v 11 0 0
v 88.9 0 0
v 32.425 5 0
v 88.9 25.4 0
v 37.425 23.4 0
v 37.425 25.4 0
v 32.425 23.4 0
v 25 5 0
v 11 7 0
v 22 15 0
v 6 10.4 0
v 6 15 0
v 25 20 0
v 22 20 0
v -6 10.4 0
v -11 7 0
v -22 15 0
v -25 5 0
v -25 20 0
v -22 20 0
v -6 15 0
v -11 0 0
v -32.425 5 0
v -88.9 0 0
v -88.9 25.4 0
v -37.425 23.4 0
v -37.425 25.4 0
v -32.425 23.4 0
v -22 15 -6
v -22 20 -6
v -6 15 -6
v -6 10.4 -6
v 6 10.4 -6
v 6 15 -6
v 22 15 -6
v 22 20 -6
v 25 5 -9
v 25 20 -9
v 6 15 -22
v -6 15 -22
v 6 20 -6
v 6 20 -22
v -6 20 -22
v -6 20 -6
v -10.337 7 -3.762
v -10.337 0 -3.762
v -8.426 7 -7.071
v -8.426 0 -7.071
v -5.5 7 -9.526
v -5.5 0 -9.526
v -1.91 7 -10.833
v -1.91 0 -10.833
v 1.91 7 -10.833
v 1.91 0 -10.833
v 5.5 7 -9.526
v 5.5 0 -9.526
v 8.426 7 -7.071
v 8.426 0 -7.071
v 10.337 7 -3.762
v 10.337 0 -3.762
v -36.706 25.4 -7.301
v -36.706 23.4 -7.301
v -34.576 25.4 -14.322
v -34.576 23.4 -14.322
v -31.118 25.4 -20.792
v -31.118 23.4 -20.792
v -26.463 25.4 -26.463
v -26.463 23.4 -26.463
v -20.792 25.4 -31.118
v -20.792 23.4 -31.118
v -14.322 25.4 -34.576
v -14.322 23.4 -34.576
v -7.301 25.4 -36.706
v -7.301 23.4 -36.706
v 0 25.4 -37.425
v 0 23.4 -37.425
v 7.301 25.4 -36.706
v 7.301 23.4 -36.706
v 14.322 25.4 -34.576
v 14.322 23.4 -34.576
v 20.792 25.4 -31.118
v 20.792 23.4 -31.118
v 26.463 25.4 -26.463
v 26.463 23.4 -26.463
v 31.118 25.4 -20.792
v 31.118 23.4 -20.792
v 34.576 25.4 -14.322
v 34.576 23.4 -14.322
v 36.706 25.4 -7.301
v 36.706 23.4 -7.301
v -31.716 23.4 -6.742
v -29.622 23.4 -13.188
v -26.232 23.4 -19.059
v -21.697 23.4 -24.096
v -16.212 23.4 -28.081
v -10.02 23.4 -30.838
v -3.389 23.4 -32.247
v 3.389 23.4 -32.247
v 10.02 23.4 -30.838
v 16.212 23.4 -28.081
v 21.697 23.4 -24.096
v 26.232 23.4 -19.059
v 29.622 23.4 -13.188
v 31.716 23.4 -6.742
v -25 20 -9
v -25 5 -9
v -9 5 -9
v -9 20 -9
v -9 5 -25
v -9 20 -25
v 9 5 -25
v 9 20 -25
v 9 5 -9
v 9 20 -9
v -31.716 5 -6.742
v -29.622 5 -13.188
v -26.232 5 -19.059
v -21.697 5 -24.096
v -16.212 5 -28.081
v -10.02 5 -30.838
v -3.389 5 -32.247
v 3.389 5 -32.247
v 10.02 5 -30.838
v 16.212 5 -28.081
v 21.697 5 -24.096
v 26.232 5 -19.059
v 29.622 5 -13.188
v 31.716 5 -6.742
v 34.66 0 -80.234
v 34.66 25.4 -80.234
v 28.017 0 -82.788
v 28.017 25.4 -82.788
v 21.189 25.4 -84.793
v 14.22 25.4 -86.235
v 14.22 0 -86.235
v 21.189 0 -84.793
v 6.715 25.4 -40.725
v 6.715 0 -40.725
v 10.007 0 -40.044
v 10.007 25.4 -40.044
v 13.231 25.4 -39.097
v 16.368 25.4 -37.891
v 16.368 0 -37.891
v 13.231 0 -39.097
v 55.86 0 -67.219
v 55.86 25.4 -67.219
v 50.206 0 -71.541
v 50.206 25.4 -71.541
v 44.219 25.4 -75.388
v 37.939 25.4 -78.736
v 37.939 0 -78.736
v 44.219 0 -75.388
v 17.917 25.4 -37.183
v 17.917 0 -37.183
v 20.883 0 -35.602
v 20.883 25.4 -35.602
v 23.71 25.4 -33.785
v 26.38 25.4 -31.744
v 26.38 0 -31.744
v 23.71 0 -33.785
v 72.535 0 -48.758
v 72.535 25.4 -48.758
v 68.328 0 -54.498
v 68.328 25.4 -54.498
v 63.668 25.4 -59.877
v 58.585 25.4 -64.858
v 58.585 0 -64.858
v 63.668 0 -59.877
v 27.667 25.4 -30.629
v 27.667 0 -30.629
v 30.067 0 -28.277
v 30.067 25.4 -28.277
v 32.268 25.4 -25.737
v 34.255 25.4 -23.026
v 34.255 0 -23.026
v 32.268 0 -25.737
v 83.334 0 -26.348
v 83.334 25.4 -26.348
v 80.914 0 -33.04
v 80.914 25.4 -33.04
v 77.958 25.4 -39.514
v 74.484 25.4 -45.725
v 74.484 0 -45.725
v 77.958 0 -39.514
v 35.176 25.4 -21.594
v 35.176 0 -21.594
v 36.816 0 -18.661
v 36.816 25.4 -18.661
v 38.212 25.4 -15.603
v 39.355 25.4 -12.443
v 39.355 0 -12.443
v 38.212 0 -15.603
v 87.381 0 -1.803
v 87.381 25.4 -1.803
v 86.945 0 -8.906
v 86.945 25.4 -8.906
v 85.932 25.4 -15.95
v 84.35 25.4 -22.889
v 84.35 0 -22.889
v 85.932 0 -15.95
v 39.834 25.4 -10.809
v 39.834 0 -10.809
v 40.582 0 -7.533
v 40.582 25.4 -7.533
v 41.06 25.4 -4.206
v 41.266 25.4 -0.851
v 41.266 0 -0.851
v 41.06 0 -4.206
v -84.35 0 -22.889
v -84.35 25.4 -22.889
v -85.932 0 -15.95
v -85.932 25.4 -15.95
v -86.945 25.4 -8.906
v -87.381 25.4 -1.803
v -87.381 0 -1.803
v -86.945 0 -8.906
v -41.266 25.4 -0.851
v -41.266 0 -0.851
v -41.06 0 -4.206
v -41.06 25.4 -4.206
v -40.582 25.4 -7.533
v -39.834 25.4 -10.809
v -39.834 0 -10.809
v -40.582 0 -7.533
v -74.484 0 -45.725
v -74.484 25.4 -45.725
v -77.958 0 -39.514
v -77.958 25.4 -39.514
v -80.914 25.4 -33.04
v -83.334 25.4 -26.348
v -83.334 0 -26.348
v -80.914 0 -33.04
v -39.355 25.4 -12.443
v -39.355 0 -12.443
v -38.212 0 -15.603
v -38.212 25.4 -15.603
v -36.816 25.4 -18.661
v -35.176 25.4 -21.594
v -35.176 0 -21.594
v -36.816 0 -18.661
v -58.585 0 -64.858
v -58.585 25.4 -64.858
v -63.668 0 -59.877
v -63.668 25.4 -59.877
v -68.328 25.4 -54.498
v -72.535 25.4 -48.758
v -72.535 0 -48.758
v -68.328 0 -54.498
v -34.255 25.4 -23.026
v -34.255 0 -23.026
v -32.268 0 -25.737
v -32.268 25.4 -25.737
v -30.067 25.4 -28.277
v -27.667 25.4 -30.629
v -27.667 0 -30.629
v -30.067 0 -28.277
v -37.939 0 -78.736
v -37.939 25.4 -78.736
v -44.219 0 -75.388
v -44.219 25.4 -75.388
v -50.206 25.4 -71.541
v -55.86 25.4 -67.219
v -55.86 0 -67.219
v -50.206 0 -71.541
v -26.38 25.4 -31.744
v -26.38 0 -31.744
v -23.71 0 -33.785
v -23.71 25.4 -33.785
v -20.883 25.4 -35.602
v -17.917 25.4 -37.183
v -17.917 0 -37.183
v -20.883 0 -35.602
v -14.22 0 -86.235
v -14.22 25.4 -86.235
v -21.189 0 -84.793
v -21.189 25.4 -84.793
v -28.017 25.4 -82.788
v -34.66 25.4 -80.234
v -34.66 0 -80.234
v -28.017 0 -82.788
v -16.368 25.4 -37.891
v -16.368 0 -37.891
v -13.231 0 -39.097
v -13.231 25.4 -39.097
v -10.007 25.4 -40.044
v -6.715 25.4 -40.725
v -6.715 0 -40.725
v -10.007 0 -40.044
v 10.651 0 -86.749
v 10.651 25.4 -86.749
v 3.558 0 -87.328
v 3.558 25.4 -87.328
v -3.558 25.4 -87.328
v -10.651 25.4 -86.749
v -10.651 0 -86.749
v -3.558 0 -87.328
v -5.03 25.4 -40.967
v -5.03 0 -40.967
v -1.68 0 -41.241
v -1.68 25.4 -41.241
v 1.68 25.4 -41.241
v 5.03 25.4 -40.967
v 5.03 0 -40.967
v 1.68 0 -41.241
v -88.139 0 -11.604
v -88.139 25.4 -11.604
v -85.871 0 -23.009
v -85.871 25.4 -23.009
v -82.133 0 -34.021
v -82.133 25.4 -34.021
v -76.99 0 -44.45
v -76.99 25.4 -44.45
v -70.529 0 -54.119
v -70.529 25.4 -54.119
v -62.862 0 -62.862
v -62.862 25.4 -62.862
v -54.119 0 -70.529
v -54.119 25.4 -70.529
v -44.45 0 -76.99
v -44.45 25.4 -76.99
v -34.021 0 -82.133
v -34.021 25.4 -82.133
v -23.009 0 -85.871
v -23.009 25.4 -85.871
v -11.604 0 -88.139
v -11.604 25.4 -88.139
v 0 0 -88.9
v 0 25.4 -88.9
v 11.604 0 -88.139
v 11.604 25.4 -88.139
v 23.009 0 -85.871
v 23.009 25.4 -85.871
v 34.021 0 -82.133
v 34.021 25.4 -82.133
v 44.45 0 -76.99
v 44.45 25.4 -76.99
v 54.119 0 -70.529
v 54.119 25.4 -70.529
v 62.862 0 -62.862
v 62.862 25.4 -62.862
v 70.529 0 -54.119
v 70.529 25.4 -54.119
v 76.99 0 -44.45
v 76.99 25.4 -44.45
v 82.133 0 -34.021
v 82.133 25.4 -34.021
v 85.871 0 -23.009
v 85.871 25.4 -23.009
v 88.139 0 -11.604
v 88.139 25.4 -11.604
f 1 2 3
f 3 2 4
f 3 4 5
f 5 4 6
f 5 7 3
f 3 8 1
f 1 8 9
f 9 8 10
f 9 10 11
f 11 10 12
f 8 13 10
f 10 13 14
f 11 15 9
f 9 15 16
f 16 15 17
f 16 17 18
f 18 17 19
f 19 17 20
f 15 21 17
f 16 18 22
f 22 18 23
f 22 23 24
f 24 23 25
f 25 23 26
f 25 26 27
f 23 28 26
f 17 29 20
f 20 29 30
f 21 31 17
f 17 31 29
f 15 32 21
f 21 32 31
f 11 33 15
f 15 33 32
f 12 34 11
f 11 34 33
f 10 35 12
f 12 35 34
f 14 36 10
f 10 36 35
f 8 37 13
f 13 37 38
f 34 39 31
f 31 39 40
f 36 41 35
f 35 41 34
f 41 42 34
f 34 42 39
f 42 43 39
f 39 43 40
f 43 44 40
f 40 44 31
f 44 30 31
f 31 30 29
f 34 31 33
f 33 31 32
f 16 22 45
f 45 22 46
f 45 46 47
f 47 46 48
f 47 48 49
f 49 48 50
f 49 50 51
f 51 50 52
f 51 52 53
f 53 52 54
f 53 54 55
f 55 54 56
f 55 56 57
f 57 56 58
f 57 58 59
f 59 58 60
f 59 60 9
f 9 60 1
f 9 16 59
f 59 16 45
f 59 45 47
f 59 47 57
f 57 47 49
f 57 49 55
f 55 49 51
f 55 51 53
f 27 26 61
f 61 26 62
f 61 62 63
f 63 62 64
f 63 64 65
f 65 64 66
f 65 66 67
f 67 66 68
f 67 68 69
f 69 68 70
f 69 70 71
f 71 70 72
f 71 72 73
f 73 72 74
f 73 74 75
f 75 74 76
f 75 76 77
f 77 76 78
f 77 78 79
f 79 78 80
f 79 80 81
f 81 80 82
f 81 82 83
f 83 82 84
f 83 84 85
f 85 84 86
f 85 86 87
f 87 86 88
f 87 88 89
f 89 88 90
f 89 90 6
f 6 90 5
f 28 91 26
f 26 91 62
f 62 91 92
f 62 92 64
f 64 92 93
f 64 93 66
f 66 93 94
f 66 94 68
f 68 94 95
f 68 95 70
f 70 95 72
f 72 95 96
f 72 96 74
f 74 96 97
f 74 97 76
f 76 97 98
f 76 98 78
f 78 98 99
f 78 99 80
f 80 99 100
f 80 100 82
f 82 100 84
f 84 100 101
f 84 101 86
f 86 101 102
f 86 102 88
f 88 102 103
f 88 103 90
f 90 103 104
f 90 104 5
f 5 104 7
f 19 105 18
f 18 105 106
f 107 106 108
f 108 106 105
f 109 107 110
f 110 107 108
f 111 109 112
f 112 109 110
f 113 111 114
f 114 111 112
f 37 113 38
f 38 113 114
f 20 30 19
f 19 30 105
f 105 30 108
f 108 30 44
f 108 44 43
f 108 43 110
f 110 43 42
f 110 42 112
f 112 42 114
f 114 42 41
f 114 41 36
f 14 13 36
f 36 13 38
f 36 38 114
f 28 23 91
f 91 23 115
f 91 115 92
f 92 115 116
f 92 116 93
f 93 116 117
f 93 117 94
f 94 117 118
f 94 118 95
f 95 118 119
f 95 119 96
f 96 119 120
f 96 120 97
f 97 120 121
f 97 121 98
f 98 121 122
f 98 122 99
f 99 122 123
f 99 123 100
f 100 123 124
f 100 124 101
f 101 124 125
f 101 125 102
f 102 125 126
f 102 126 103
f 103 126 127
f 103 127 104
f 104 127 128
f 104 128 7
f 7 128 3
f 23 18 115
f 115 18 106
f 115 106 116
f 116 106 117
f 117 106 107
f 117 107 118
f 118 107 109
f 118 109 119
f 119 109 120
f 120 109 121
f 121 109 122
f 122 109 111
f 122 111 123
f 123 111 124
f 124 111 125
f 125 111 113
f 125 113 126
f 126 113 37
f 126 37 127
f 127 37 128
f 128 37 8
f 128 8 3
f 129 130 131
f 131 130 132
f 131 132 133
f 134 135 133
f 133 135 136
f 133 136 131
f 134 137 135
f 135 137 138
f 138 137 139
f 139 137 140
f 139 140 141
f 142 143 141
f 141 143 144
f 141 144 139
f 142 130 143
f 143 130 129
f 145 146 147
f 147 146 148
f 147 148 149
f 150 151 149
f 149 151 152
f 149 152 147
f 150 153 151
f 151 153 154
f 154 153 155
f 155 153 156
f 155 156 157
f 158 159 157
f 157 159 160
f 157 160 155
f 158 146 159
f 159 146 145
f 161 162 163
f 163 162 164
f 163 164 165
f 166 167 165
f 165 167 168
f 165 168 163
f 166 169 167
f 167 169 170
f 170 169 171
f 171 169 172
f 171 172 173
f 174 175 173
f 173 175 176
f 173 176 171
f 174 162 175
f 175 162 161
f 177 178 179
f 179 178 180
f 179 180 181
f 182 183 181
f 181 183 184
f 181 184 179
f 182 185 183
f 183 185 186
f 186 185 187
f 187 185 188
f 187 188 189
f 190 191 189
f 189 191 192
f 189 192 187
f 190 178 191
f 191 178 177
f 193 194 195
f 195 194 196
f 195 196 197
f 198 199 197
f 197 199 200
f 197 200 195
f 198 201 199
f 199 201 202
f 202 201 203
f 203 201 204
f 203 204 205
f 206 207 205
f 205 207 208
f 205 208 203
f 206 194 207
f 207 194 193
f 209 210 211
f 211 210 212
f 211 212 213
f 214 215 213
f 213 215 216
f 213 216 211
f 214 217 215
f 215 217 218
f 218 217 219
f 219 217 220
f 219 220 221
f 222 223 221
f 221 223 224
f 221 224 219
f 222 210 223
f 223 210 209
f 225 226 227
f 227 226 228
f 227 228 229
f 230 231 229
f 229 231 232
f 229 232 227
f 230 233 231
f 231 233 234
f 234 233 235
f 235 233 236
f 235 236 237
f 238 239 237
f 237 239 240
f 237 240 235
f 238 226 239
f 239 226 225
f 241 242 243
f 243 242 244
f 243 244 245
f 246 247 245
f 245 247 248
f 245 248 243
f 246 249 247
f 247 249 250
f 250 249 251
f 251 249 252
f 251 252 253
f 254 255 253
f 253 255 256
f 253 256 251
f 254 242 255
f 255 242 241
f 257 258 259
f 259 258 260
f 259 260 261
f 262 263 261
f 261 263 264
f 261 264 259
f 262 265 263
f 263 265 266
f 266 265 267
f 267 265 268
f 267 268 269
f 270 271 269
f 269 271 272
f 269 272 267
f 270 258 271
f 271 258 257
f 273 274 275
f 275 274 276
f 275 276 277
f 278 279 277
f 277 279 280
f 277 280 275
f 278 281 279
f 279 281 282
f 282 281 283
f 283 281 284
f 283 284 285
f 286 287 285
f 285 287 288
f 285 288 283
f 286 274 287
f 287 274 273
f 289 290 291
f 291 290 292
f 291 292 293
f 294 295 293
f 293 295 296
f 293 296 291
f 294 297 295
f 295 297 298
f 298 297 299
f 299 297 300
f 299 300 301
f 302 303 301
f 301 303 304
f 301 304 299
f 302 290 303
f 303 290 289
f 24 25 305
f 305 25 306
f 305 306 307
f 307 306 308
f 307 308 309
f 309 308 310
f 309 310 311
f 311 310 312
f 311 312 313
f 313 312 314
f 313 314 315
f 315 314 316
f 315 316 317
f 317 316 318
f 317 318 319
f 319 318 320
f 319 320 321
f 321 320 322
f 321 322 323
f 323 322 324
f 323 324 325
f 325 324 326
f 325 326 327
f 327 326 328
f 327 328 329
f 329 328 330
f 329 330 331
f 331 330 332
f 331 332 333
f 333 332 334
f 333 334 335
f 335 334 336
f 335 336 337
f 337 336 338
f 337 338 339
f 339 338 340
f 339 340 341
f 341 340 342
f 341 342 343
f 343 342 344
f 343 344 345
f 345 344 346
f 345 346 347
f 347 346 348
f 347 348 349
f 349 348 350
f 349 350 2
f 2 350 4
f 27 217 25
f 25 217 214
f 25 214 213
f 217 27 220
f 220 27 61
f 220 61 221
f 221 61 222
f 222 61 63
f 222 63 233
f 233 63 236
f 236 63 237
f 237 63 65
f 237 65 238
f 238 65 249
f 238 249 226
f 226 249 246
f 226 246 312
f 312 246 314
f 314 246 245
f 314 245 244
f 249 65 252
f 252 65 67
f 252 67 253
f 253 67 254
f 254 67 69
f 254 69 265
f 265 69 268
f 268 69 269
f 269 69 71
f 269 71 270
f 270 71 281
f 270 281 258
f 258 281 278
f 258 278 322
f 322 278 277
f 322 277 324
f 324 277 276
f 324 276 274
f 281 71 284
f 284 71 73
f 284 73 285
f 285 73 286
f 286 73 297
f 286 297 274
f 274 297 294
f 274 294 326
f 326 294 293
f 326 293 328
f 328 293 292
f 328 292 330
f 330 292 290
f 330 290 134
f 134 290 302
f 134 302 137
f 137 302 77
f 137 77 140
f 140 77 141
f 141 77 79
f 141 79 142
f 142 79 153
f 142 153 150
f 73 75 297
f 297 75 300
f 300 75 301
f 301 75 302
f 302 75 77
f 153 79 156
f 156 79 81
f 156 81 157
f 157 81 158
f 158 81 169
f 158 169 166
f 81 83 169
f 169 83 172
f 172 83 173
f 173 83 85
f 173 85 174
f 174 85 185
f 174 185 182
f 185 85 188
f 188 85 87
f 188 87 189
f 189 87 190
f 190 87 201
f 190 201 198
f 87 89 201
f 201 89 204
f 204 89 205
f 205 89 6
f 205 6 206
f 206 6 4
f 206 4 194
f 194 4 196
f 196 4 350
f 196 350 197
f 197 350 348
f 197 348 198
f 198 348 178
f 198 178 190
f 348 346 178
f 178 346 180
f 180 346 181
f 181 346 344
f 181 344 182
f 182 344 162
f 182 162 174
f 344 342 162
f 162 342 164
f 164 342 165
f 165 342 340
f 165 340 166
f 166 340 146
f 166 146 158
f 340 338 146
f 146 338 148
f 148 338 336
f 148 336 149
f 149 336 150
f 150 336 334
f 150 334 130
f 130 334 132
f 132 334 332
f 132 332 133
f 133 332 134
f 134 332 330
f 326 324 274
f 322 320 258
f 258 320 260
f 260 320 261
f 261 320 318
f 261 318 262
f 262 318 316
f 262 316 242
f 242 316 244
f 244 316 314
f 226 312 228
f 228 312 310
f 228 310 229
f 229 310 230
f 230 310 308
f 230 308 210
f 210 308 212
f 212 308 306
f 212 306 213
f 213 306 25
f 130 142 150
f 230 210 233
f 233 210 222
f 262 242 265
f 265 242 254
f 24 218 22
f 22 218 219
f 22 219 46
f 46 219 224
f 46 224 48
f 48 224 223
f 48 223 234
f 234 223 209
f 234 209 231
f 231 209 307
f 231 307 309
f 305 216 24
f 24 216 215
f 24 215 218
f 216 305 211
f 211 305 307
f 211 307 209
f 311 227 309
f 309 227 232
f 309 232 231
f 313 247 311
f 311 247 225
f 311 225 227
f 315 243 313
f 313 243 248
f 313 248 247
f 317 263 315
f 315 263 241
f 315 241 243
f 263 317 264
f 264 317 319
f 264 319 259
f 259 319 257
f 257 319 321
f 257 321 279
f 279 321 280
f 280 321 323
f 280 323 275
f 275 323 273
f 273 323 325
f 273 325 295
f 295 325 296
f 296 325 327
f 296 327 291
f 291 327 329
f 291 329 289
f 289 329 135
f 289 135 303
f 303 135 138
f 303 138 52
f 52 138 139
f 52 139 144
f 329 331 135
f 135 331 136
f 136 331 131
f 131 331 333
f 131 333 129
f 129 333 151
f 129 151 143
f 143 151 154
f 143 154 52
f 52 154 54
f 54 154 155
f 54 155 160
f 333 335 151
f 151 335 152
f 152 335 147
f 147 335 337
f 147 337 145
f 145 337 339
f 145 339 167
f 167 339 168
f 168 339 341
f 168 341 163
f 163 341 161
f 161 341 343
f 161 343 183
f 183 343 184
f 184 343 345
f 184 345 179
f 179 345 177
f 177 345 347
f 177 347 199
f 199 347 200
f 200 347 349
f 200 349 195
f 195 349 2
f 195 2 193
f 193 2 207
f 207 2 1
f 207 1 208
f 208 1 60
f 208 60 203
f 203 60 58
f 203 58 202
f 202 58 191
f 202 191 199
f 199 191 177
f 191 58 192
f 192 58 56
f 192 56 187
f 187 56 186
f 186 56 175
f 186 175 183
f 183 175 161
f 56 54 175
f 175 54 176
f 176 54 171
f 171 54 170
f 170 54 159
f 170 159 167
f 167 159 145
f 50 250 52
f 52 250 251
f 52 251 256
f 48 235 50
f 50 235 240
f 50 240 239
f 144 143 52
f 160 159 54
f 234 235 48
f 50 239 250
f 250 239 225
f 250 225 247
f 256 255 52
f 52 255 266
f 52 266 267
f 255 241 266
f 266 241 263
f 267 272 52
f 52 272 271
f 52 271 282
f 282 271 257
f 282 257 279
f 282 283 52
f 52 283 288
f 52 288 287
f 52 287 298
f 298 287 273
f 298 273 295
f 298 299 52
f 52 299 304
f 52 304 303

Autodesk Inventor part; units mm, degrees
ref_plane "YZ Plane" through (0, 0, 0) normal (1, 0, 0) x (0, 1, 0)
sketch "Sketch1" plane through (0, 0, 0) normal (0, 1, 0) x (-1, 0, 0)
  circle A0 centre (0, 0) radius 88.9
  dimension "d0" = 177.8
extrude "Extrusion1" add sketch "Sketch1" along normal blind 25.4
sketch "Sketch2" plane through (0, 25.4, 0) normal (0, 1, 0) x (1, 0, 0)
  circle A0 centre (0, 0) radius 87.4
  line L0 (0, 0) -> (-10.8342, 88.2374)
  circle A1 centre (0, 0) radius 88.9 projected
  line L1 (0, 0) -> (10.8342, 88.2374)
  circle A2 centre (0, 0) radius 34.925
  line L2 (0, 0) -> (0, 88.9)
  circle A3 centre (0, 0) radius 41.275
  point P0 (-4.2563, 34.6647)
  point P1 (4.2563, 34.6647)
  point P2 (10.6514, 86.7485)
  point P3 (-10.6514, 86.7485)
  point P4 (-5.0302, 40.9673)
  point P5 (5.0302, 40.9673)
  dimension "d3" = 174.8
  dimension "d4" = 69.85
  dimension "d10" = 14
  dimension "d11" = 7
  dimension "d45" = 82.55
extrude "Extrusion2" cut sketch "Sketch2" against normal blind 25.4 contours L1 A3 L2 A0 | A0 L2 A3 L0
pattern_circular "Circular Pattern1" count 22 over 360 about axis through (0, 0, 0) along (0, 1, 0) of "Extrusion2"
sketch "Sketch4" plane through (0, 25.4, 0) normal (0, 1, 0) x (1, 0, 0)
  circle A0 centre (0, 0) radius 32.425
  dimension "d16" = 64.85
extrude "Extrusion3" cut sketch "Sketch4" against normal blind 20.4
ref_plane "Work Plane1" through (0, 5, 0) normal (0, 1, 0) x (1, 0, 0)
sketch "Sketch5" plane through (0, 5, 0) normal (0, 1, 0) x (1, 0, 0)
  line L0 (0, 0) -> (0, 25)
  line L1 (0, 0) -> (-25, 0)
  line L2 (0, 0) -> (0, -25)
  line L3 (0, 0) -> (25, 0)
  line L4 (25, 0) -> (25, -9)
  line L5 (0, -25) -> (9, -25)
  line L6 (9, -25) -> (9, -9)
  line L7 (9, -9) -> (25, -9)
  line L8 (0, -25) -> (-9, -25)
  line L9 (-9, -25) -> (-9, -9)
  line L10 (-9, -9) -> (-25, -9)
  line L11 (-25, -9) -> (-25, 0)
  line L12 (-25, 0) -> (-25, 9)
  line L13 (-25, 9) -> (-9, 9)
  line L14 (-9, 9) -> (-9, 25)
  line L15 (-9, 25) -> (0, 25)
  line L16 (9, 25) -> (0, 25)
  line L17 (9, 25) -> (9, 9)
  line L18 (9, 9) -> (25, 9)
  line L19 (25, 9) -> (25, 0)
  dimension "d65" = 25
  dimension "d66" = 25
  dimension "d67" = 25
  dimension "d68" = 25
  dimension "d69" = 9
  dimension "d70" = 9
  dimension "d71" = 9
  dimension "d72" = 9
  dimension "d85" = 9
  dimension "d86" = 9
  dimension "d87" = 9
  dimension "d88" = 9
extrude "Extrusion4" add sketch "Sketch5" along normal blind 15
ref_plane "Work Plane3" through (0, 15.4, 0) normal (0, 1, 0) x (1, 0, 0)
sketch "Sketch21" plane through (0, 25.4, 0) normal (0, 1, 0) x (1, 0, 0)
  circle A0 centre (0, 0) radius 32.425
  circle A1 centre (0, 0) radius 37.425
  dimension "d51" = 64.85
  dimension "d52" = 74.85
extrude "Extrusion8" cut sketch "Sketch21" against normal blind 2
sketch "Sketch23" plane through (0, 0, 0) normal (0, -1, 0) x (1, 0, 0)
  circle A0 centre (0, 0) radius 11
  dimension "d60" = 22
extrude "Extrusion10" cut sketch "Sketch23" against normal blind 7
sketch "Sketch7" plane through (0, 15.4, 0) normal (0, 1, 0) x (1, 0, 0)
  line L0 (-6, 6) -> (6, 6)
  line L1 (6, 6) -> (6, -6)
  line L2 (6, -6) -> (-6, -6)
  line L3 (-6, -6) -> (-6, 6)
  line L4 (-15, 15) -> (15, 15) projected
  line L5 (15, 15) -> (15, -15) projected
  line L6 (-15, -15) -> (-15, 15) projected
  line L7 (15, -15) -> (-15, -15) projected
  point P0 (0, 0)
  dimension "d32" = 9
  dimension "d33" = 9
  dimension "d34" = 9
  dimension "d35" = 9
extrude "Extrusion6" cut sketch "Sketch7" against normal blind 5 contours L0 L1 L2 L3
sketch "Sketch25" plane through (0, 20, 0) normal (0, 1, 0) x (1, 0, 0)
  line L0 (-22, 6) -> (-6, 6)
  line L1 (-6, 6) -> (-6, 22)
  line L2 (-6, 22) -> (6, 22)
  line L3 (6, 22) -> (6, 6)
  line L4 (6, 6) -> (22, 6)
  line L5 (22, 6) -> (22, -6)
  line L6 (22, -6) -> (6, -6)
  line L7 (6, -6) -> (6, -22)
  line L8 (6, -22) -> (-6, -22)
  line L9 (-6, -22) -> (-6, -6)
  line L10 (-22, -6) -> (-6, -6)
  line L11 (-22, -6) -> (-22, 6)
  line L12 (-9, 25) -> (-9, 9) projected
  line L13 (9, 25) -> (-9, 25) projected
  line L14 (9, 9) -> (9, 25) projected
  line L15 (9, 9) -> (25, 9) projected
  line L16 (9, -9) -> (25, -9) projected
  line L17 (25, -9) -> (25, 9) projected
  line L18 (9, -25) -> (9, -9) projected
  line L19 (-9, -25) -> (9, -25) projected
  line L20 (-9, -9) -> (-9, -25) projected
  line L21 (-25, -9) -> (-9, -9) projected
  line L22 (-25, 9) -> (-25, -9) projected
  line L23 (-9, 9) -> (-25, 9) projected
  point P0 (0, 0)
  dimension "d73" = 3
  dimension "d74" = 3
  dimension "d75" = 3
  dimension "d76" = 3
  dimension "d77" = 3
  dimension "d78" = 3
  dimension "d79" = 3
  dimension "d80" = 3
  dimension "d81" = 3
  dimension "d82" = 3
  dimension "d83" = 3
  dimension "d84" = 3
extrude "Extrusion11" cut sketch "Sketch25" against normal blind 5 contours L0 L1 L2 L3 L4 L5 L6 L7 L8 L9 L10 L11
sketch "Sketch27" plane through (0, 25.4, 0) normal (0, 1, 0) x (1, 0, 0)
  circle A0 centre (0, 0) radius 88.9 projected
  line L0 (-88.9, 0) -> (88.9, 0)
ref_plane "Work Plane4" through (-88.9, 25.4, 0) normal (0, 0, 1) x (1, 0, 0)
sketch "Sketch28" plane through (-88.9, 25.4, 0) normal (0, 0, 1) x (1, 0, 0)
  line L0 (-17.5989, 18.4525) -> (205.1439, 18.4525)
  line L1 (205.1439, 18.4525) -> (205.1439, -42.1057)
  line L2 (205.1439, -42.1057) -> (-17.5989, -42.1057)
  line L3 (-17.5989, -42.1057) -> (-17.5989, 18.4525)
  point P0 (88.9, -25.4)
extrude "Extrusion12" cut sketch "Sketch28" along normal through all
equation "\"d11\" = 0.5 * d10"
equation "\"d33\" = d32"
equation "\"d34\" = d32"
equation "\"d35\" = d32"
equation "\"d75\" = d73"
equation "\"d76\" = d73"
equation "\"d77\" = d73"
equation "\"d78\" = d73"
equation "\"d80\" = d73"
equation "\"d83\" = d73"
properties part number "Capsule_Design_Final"
